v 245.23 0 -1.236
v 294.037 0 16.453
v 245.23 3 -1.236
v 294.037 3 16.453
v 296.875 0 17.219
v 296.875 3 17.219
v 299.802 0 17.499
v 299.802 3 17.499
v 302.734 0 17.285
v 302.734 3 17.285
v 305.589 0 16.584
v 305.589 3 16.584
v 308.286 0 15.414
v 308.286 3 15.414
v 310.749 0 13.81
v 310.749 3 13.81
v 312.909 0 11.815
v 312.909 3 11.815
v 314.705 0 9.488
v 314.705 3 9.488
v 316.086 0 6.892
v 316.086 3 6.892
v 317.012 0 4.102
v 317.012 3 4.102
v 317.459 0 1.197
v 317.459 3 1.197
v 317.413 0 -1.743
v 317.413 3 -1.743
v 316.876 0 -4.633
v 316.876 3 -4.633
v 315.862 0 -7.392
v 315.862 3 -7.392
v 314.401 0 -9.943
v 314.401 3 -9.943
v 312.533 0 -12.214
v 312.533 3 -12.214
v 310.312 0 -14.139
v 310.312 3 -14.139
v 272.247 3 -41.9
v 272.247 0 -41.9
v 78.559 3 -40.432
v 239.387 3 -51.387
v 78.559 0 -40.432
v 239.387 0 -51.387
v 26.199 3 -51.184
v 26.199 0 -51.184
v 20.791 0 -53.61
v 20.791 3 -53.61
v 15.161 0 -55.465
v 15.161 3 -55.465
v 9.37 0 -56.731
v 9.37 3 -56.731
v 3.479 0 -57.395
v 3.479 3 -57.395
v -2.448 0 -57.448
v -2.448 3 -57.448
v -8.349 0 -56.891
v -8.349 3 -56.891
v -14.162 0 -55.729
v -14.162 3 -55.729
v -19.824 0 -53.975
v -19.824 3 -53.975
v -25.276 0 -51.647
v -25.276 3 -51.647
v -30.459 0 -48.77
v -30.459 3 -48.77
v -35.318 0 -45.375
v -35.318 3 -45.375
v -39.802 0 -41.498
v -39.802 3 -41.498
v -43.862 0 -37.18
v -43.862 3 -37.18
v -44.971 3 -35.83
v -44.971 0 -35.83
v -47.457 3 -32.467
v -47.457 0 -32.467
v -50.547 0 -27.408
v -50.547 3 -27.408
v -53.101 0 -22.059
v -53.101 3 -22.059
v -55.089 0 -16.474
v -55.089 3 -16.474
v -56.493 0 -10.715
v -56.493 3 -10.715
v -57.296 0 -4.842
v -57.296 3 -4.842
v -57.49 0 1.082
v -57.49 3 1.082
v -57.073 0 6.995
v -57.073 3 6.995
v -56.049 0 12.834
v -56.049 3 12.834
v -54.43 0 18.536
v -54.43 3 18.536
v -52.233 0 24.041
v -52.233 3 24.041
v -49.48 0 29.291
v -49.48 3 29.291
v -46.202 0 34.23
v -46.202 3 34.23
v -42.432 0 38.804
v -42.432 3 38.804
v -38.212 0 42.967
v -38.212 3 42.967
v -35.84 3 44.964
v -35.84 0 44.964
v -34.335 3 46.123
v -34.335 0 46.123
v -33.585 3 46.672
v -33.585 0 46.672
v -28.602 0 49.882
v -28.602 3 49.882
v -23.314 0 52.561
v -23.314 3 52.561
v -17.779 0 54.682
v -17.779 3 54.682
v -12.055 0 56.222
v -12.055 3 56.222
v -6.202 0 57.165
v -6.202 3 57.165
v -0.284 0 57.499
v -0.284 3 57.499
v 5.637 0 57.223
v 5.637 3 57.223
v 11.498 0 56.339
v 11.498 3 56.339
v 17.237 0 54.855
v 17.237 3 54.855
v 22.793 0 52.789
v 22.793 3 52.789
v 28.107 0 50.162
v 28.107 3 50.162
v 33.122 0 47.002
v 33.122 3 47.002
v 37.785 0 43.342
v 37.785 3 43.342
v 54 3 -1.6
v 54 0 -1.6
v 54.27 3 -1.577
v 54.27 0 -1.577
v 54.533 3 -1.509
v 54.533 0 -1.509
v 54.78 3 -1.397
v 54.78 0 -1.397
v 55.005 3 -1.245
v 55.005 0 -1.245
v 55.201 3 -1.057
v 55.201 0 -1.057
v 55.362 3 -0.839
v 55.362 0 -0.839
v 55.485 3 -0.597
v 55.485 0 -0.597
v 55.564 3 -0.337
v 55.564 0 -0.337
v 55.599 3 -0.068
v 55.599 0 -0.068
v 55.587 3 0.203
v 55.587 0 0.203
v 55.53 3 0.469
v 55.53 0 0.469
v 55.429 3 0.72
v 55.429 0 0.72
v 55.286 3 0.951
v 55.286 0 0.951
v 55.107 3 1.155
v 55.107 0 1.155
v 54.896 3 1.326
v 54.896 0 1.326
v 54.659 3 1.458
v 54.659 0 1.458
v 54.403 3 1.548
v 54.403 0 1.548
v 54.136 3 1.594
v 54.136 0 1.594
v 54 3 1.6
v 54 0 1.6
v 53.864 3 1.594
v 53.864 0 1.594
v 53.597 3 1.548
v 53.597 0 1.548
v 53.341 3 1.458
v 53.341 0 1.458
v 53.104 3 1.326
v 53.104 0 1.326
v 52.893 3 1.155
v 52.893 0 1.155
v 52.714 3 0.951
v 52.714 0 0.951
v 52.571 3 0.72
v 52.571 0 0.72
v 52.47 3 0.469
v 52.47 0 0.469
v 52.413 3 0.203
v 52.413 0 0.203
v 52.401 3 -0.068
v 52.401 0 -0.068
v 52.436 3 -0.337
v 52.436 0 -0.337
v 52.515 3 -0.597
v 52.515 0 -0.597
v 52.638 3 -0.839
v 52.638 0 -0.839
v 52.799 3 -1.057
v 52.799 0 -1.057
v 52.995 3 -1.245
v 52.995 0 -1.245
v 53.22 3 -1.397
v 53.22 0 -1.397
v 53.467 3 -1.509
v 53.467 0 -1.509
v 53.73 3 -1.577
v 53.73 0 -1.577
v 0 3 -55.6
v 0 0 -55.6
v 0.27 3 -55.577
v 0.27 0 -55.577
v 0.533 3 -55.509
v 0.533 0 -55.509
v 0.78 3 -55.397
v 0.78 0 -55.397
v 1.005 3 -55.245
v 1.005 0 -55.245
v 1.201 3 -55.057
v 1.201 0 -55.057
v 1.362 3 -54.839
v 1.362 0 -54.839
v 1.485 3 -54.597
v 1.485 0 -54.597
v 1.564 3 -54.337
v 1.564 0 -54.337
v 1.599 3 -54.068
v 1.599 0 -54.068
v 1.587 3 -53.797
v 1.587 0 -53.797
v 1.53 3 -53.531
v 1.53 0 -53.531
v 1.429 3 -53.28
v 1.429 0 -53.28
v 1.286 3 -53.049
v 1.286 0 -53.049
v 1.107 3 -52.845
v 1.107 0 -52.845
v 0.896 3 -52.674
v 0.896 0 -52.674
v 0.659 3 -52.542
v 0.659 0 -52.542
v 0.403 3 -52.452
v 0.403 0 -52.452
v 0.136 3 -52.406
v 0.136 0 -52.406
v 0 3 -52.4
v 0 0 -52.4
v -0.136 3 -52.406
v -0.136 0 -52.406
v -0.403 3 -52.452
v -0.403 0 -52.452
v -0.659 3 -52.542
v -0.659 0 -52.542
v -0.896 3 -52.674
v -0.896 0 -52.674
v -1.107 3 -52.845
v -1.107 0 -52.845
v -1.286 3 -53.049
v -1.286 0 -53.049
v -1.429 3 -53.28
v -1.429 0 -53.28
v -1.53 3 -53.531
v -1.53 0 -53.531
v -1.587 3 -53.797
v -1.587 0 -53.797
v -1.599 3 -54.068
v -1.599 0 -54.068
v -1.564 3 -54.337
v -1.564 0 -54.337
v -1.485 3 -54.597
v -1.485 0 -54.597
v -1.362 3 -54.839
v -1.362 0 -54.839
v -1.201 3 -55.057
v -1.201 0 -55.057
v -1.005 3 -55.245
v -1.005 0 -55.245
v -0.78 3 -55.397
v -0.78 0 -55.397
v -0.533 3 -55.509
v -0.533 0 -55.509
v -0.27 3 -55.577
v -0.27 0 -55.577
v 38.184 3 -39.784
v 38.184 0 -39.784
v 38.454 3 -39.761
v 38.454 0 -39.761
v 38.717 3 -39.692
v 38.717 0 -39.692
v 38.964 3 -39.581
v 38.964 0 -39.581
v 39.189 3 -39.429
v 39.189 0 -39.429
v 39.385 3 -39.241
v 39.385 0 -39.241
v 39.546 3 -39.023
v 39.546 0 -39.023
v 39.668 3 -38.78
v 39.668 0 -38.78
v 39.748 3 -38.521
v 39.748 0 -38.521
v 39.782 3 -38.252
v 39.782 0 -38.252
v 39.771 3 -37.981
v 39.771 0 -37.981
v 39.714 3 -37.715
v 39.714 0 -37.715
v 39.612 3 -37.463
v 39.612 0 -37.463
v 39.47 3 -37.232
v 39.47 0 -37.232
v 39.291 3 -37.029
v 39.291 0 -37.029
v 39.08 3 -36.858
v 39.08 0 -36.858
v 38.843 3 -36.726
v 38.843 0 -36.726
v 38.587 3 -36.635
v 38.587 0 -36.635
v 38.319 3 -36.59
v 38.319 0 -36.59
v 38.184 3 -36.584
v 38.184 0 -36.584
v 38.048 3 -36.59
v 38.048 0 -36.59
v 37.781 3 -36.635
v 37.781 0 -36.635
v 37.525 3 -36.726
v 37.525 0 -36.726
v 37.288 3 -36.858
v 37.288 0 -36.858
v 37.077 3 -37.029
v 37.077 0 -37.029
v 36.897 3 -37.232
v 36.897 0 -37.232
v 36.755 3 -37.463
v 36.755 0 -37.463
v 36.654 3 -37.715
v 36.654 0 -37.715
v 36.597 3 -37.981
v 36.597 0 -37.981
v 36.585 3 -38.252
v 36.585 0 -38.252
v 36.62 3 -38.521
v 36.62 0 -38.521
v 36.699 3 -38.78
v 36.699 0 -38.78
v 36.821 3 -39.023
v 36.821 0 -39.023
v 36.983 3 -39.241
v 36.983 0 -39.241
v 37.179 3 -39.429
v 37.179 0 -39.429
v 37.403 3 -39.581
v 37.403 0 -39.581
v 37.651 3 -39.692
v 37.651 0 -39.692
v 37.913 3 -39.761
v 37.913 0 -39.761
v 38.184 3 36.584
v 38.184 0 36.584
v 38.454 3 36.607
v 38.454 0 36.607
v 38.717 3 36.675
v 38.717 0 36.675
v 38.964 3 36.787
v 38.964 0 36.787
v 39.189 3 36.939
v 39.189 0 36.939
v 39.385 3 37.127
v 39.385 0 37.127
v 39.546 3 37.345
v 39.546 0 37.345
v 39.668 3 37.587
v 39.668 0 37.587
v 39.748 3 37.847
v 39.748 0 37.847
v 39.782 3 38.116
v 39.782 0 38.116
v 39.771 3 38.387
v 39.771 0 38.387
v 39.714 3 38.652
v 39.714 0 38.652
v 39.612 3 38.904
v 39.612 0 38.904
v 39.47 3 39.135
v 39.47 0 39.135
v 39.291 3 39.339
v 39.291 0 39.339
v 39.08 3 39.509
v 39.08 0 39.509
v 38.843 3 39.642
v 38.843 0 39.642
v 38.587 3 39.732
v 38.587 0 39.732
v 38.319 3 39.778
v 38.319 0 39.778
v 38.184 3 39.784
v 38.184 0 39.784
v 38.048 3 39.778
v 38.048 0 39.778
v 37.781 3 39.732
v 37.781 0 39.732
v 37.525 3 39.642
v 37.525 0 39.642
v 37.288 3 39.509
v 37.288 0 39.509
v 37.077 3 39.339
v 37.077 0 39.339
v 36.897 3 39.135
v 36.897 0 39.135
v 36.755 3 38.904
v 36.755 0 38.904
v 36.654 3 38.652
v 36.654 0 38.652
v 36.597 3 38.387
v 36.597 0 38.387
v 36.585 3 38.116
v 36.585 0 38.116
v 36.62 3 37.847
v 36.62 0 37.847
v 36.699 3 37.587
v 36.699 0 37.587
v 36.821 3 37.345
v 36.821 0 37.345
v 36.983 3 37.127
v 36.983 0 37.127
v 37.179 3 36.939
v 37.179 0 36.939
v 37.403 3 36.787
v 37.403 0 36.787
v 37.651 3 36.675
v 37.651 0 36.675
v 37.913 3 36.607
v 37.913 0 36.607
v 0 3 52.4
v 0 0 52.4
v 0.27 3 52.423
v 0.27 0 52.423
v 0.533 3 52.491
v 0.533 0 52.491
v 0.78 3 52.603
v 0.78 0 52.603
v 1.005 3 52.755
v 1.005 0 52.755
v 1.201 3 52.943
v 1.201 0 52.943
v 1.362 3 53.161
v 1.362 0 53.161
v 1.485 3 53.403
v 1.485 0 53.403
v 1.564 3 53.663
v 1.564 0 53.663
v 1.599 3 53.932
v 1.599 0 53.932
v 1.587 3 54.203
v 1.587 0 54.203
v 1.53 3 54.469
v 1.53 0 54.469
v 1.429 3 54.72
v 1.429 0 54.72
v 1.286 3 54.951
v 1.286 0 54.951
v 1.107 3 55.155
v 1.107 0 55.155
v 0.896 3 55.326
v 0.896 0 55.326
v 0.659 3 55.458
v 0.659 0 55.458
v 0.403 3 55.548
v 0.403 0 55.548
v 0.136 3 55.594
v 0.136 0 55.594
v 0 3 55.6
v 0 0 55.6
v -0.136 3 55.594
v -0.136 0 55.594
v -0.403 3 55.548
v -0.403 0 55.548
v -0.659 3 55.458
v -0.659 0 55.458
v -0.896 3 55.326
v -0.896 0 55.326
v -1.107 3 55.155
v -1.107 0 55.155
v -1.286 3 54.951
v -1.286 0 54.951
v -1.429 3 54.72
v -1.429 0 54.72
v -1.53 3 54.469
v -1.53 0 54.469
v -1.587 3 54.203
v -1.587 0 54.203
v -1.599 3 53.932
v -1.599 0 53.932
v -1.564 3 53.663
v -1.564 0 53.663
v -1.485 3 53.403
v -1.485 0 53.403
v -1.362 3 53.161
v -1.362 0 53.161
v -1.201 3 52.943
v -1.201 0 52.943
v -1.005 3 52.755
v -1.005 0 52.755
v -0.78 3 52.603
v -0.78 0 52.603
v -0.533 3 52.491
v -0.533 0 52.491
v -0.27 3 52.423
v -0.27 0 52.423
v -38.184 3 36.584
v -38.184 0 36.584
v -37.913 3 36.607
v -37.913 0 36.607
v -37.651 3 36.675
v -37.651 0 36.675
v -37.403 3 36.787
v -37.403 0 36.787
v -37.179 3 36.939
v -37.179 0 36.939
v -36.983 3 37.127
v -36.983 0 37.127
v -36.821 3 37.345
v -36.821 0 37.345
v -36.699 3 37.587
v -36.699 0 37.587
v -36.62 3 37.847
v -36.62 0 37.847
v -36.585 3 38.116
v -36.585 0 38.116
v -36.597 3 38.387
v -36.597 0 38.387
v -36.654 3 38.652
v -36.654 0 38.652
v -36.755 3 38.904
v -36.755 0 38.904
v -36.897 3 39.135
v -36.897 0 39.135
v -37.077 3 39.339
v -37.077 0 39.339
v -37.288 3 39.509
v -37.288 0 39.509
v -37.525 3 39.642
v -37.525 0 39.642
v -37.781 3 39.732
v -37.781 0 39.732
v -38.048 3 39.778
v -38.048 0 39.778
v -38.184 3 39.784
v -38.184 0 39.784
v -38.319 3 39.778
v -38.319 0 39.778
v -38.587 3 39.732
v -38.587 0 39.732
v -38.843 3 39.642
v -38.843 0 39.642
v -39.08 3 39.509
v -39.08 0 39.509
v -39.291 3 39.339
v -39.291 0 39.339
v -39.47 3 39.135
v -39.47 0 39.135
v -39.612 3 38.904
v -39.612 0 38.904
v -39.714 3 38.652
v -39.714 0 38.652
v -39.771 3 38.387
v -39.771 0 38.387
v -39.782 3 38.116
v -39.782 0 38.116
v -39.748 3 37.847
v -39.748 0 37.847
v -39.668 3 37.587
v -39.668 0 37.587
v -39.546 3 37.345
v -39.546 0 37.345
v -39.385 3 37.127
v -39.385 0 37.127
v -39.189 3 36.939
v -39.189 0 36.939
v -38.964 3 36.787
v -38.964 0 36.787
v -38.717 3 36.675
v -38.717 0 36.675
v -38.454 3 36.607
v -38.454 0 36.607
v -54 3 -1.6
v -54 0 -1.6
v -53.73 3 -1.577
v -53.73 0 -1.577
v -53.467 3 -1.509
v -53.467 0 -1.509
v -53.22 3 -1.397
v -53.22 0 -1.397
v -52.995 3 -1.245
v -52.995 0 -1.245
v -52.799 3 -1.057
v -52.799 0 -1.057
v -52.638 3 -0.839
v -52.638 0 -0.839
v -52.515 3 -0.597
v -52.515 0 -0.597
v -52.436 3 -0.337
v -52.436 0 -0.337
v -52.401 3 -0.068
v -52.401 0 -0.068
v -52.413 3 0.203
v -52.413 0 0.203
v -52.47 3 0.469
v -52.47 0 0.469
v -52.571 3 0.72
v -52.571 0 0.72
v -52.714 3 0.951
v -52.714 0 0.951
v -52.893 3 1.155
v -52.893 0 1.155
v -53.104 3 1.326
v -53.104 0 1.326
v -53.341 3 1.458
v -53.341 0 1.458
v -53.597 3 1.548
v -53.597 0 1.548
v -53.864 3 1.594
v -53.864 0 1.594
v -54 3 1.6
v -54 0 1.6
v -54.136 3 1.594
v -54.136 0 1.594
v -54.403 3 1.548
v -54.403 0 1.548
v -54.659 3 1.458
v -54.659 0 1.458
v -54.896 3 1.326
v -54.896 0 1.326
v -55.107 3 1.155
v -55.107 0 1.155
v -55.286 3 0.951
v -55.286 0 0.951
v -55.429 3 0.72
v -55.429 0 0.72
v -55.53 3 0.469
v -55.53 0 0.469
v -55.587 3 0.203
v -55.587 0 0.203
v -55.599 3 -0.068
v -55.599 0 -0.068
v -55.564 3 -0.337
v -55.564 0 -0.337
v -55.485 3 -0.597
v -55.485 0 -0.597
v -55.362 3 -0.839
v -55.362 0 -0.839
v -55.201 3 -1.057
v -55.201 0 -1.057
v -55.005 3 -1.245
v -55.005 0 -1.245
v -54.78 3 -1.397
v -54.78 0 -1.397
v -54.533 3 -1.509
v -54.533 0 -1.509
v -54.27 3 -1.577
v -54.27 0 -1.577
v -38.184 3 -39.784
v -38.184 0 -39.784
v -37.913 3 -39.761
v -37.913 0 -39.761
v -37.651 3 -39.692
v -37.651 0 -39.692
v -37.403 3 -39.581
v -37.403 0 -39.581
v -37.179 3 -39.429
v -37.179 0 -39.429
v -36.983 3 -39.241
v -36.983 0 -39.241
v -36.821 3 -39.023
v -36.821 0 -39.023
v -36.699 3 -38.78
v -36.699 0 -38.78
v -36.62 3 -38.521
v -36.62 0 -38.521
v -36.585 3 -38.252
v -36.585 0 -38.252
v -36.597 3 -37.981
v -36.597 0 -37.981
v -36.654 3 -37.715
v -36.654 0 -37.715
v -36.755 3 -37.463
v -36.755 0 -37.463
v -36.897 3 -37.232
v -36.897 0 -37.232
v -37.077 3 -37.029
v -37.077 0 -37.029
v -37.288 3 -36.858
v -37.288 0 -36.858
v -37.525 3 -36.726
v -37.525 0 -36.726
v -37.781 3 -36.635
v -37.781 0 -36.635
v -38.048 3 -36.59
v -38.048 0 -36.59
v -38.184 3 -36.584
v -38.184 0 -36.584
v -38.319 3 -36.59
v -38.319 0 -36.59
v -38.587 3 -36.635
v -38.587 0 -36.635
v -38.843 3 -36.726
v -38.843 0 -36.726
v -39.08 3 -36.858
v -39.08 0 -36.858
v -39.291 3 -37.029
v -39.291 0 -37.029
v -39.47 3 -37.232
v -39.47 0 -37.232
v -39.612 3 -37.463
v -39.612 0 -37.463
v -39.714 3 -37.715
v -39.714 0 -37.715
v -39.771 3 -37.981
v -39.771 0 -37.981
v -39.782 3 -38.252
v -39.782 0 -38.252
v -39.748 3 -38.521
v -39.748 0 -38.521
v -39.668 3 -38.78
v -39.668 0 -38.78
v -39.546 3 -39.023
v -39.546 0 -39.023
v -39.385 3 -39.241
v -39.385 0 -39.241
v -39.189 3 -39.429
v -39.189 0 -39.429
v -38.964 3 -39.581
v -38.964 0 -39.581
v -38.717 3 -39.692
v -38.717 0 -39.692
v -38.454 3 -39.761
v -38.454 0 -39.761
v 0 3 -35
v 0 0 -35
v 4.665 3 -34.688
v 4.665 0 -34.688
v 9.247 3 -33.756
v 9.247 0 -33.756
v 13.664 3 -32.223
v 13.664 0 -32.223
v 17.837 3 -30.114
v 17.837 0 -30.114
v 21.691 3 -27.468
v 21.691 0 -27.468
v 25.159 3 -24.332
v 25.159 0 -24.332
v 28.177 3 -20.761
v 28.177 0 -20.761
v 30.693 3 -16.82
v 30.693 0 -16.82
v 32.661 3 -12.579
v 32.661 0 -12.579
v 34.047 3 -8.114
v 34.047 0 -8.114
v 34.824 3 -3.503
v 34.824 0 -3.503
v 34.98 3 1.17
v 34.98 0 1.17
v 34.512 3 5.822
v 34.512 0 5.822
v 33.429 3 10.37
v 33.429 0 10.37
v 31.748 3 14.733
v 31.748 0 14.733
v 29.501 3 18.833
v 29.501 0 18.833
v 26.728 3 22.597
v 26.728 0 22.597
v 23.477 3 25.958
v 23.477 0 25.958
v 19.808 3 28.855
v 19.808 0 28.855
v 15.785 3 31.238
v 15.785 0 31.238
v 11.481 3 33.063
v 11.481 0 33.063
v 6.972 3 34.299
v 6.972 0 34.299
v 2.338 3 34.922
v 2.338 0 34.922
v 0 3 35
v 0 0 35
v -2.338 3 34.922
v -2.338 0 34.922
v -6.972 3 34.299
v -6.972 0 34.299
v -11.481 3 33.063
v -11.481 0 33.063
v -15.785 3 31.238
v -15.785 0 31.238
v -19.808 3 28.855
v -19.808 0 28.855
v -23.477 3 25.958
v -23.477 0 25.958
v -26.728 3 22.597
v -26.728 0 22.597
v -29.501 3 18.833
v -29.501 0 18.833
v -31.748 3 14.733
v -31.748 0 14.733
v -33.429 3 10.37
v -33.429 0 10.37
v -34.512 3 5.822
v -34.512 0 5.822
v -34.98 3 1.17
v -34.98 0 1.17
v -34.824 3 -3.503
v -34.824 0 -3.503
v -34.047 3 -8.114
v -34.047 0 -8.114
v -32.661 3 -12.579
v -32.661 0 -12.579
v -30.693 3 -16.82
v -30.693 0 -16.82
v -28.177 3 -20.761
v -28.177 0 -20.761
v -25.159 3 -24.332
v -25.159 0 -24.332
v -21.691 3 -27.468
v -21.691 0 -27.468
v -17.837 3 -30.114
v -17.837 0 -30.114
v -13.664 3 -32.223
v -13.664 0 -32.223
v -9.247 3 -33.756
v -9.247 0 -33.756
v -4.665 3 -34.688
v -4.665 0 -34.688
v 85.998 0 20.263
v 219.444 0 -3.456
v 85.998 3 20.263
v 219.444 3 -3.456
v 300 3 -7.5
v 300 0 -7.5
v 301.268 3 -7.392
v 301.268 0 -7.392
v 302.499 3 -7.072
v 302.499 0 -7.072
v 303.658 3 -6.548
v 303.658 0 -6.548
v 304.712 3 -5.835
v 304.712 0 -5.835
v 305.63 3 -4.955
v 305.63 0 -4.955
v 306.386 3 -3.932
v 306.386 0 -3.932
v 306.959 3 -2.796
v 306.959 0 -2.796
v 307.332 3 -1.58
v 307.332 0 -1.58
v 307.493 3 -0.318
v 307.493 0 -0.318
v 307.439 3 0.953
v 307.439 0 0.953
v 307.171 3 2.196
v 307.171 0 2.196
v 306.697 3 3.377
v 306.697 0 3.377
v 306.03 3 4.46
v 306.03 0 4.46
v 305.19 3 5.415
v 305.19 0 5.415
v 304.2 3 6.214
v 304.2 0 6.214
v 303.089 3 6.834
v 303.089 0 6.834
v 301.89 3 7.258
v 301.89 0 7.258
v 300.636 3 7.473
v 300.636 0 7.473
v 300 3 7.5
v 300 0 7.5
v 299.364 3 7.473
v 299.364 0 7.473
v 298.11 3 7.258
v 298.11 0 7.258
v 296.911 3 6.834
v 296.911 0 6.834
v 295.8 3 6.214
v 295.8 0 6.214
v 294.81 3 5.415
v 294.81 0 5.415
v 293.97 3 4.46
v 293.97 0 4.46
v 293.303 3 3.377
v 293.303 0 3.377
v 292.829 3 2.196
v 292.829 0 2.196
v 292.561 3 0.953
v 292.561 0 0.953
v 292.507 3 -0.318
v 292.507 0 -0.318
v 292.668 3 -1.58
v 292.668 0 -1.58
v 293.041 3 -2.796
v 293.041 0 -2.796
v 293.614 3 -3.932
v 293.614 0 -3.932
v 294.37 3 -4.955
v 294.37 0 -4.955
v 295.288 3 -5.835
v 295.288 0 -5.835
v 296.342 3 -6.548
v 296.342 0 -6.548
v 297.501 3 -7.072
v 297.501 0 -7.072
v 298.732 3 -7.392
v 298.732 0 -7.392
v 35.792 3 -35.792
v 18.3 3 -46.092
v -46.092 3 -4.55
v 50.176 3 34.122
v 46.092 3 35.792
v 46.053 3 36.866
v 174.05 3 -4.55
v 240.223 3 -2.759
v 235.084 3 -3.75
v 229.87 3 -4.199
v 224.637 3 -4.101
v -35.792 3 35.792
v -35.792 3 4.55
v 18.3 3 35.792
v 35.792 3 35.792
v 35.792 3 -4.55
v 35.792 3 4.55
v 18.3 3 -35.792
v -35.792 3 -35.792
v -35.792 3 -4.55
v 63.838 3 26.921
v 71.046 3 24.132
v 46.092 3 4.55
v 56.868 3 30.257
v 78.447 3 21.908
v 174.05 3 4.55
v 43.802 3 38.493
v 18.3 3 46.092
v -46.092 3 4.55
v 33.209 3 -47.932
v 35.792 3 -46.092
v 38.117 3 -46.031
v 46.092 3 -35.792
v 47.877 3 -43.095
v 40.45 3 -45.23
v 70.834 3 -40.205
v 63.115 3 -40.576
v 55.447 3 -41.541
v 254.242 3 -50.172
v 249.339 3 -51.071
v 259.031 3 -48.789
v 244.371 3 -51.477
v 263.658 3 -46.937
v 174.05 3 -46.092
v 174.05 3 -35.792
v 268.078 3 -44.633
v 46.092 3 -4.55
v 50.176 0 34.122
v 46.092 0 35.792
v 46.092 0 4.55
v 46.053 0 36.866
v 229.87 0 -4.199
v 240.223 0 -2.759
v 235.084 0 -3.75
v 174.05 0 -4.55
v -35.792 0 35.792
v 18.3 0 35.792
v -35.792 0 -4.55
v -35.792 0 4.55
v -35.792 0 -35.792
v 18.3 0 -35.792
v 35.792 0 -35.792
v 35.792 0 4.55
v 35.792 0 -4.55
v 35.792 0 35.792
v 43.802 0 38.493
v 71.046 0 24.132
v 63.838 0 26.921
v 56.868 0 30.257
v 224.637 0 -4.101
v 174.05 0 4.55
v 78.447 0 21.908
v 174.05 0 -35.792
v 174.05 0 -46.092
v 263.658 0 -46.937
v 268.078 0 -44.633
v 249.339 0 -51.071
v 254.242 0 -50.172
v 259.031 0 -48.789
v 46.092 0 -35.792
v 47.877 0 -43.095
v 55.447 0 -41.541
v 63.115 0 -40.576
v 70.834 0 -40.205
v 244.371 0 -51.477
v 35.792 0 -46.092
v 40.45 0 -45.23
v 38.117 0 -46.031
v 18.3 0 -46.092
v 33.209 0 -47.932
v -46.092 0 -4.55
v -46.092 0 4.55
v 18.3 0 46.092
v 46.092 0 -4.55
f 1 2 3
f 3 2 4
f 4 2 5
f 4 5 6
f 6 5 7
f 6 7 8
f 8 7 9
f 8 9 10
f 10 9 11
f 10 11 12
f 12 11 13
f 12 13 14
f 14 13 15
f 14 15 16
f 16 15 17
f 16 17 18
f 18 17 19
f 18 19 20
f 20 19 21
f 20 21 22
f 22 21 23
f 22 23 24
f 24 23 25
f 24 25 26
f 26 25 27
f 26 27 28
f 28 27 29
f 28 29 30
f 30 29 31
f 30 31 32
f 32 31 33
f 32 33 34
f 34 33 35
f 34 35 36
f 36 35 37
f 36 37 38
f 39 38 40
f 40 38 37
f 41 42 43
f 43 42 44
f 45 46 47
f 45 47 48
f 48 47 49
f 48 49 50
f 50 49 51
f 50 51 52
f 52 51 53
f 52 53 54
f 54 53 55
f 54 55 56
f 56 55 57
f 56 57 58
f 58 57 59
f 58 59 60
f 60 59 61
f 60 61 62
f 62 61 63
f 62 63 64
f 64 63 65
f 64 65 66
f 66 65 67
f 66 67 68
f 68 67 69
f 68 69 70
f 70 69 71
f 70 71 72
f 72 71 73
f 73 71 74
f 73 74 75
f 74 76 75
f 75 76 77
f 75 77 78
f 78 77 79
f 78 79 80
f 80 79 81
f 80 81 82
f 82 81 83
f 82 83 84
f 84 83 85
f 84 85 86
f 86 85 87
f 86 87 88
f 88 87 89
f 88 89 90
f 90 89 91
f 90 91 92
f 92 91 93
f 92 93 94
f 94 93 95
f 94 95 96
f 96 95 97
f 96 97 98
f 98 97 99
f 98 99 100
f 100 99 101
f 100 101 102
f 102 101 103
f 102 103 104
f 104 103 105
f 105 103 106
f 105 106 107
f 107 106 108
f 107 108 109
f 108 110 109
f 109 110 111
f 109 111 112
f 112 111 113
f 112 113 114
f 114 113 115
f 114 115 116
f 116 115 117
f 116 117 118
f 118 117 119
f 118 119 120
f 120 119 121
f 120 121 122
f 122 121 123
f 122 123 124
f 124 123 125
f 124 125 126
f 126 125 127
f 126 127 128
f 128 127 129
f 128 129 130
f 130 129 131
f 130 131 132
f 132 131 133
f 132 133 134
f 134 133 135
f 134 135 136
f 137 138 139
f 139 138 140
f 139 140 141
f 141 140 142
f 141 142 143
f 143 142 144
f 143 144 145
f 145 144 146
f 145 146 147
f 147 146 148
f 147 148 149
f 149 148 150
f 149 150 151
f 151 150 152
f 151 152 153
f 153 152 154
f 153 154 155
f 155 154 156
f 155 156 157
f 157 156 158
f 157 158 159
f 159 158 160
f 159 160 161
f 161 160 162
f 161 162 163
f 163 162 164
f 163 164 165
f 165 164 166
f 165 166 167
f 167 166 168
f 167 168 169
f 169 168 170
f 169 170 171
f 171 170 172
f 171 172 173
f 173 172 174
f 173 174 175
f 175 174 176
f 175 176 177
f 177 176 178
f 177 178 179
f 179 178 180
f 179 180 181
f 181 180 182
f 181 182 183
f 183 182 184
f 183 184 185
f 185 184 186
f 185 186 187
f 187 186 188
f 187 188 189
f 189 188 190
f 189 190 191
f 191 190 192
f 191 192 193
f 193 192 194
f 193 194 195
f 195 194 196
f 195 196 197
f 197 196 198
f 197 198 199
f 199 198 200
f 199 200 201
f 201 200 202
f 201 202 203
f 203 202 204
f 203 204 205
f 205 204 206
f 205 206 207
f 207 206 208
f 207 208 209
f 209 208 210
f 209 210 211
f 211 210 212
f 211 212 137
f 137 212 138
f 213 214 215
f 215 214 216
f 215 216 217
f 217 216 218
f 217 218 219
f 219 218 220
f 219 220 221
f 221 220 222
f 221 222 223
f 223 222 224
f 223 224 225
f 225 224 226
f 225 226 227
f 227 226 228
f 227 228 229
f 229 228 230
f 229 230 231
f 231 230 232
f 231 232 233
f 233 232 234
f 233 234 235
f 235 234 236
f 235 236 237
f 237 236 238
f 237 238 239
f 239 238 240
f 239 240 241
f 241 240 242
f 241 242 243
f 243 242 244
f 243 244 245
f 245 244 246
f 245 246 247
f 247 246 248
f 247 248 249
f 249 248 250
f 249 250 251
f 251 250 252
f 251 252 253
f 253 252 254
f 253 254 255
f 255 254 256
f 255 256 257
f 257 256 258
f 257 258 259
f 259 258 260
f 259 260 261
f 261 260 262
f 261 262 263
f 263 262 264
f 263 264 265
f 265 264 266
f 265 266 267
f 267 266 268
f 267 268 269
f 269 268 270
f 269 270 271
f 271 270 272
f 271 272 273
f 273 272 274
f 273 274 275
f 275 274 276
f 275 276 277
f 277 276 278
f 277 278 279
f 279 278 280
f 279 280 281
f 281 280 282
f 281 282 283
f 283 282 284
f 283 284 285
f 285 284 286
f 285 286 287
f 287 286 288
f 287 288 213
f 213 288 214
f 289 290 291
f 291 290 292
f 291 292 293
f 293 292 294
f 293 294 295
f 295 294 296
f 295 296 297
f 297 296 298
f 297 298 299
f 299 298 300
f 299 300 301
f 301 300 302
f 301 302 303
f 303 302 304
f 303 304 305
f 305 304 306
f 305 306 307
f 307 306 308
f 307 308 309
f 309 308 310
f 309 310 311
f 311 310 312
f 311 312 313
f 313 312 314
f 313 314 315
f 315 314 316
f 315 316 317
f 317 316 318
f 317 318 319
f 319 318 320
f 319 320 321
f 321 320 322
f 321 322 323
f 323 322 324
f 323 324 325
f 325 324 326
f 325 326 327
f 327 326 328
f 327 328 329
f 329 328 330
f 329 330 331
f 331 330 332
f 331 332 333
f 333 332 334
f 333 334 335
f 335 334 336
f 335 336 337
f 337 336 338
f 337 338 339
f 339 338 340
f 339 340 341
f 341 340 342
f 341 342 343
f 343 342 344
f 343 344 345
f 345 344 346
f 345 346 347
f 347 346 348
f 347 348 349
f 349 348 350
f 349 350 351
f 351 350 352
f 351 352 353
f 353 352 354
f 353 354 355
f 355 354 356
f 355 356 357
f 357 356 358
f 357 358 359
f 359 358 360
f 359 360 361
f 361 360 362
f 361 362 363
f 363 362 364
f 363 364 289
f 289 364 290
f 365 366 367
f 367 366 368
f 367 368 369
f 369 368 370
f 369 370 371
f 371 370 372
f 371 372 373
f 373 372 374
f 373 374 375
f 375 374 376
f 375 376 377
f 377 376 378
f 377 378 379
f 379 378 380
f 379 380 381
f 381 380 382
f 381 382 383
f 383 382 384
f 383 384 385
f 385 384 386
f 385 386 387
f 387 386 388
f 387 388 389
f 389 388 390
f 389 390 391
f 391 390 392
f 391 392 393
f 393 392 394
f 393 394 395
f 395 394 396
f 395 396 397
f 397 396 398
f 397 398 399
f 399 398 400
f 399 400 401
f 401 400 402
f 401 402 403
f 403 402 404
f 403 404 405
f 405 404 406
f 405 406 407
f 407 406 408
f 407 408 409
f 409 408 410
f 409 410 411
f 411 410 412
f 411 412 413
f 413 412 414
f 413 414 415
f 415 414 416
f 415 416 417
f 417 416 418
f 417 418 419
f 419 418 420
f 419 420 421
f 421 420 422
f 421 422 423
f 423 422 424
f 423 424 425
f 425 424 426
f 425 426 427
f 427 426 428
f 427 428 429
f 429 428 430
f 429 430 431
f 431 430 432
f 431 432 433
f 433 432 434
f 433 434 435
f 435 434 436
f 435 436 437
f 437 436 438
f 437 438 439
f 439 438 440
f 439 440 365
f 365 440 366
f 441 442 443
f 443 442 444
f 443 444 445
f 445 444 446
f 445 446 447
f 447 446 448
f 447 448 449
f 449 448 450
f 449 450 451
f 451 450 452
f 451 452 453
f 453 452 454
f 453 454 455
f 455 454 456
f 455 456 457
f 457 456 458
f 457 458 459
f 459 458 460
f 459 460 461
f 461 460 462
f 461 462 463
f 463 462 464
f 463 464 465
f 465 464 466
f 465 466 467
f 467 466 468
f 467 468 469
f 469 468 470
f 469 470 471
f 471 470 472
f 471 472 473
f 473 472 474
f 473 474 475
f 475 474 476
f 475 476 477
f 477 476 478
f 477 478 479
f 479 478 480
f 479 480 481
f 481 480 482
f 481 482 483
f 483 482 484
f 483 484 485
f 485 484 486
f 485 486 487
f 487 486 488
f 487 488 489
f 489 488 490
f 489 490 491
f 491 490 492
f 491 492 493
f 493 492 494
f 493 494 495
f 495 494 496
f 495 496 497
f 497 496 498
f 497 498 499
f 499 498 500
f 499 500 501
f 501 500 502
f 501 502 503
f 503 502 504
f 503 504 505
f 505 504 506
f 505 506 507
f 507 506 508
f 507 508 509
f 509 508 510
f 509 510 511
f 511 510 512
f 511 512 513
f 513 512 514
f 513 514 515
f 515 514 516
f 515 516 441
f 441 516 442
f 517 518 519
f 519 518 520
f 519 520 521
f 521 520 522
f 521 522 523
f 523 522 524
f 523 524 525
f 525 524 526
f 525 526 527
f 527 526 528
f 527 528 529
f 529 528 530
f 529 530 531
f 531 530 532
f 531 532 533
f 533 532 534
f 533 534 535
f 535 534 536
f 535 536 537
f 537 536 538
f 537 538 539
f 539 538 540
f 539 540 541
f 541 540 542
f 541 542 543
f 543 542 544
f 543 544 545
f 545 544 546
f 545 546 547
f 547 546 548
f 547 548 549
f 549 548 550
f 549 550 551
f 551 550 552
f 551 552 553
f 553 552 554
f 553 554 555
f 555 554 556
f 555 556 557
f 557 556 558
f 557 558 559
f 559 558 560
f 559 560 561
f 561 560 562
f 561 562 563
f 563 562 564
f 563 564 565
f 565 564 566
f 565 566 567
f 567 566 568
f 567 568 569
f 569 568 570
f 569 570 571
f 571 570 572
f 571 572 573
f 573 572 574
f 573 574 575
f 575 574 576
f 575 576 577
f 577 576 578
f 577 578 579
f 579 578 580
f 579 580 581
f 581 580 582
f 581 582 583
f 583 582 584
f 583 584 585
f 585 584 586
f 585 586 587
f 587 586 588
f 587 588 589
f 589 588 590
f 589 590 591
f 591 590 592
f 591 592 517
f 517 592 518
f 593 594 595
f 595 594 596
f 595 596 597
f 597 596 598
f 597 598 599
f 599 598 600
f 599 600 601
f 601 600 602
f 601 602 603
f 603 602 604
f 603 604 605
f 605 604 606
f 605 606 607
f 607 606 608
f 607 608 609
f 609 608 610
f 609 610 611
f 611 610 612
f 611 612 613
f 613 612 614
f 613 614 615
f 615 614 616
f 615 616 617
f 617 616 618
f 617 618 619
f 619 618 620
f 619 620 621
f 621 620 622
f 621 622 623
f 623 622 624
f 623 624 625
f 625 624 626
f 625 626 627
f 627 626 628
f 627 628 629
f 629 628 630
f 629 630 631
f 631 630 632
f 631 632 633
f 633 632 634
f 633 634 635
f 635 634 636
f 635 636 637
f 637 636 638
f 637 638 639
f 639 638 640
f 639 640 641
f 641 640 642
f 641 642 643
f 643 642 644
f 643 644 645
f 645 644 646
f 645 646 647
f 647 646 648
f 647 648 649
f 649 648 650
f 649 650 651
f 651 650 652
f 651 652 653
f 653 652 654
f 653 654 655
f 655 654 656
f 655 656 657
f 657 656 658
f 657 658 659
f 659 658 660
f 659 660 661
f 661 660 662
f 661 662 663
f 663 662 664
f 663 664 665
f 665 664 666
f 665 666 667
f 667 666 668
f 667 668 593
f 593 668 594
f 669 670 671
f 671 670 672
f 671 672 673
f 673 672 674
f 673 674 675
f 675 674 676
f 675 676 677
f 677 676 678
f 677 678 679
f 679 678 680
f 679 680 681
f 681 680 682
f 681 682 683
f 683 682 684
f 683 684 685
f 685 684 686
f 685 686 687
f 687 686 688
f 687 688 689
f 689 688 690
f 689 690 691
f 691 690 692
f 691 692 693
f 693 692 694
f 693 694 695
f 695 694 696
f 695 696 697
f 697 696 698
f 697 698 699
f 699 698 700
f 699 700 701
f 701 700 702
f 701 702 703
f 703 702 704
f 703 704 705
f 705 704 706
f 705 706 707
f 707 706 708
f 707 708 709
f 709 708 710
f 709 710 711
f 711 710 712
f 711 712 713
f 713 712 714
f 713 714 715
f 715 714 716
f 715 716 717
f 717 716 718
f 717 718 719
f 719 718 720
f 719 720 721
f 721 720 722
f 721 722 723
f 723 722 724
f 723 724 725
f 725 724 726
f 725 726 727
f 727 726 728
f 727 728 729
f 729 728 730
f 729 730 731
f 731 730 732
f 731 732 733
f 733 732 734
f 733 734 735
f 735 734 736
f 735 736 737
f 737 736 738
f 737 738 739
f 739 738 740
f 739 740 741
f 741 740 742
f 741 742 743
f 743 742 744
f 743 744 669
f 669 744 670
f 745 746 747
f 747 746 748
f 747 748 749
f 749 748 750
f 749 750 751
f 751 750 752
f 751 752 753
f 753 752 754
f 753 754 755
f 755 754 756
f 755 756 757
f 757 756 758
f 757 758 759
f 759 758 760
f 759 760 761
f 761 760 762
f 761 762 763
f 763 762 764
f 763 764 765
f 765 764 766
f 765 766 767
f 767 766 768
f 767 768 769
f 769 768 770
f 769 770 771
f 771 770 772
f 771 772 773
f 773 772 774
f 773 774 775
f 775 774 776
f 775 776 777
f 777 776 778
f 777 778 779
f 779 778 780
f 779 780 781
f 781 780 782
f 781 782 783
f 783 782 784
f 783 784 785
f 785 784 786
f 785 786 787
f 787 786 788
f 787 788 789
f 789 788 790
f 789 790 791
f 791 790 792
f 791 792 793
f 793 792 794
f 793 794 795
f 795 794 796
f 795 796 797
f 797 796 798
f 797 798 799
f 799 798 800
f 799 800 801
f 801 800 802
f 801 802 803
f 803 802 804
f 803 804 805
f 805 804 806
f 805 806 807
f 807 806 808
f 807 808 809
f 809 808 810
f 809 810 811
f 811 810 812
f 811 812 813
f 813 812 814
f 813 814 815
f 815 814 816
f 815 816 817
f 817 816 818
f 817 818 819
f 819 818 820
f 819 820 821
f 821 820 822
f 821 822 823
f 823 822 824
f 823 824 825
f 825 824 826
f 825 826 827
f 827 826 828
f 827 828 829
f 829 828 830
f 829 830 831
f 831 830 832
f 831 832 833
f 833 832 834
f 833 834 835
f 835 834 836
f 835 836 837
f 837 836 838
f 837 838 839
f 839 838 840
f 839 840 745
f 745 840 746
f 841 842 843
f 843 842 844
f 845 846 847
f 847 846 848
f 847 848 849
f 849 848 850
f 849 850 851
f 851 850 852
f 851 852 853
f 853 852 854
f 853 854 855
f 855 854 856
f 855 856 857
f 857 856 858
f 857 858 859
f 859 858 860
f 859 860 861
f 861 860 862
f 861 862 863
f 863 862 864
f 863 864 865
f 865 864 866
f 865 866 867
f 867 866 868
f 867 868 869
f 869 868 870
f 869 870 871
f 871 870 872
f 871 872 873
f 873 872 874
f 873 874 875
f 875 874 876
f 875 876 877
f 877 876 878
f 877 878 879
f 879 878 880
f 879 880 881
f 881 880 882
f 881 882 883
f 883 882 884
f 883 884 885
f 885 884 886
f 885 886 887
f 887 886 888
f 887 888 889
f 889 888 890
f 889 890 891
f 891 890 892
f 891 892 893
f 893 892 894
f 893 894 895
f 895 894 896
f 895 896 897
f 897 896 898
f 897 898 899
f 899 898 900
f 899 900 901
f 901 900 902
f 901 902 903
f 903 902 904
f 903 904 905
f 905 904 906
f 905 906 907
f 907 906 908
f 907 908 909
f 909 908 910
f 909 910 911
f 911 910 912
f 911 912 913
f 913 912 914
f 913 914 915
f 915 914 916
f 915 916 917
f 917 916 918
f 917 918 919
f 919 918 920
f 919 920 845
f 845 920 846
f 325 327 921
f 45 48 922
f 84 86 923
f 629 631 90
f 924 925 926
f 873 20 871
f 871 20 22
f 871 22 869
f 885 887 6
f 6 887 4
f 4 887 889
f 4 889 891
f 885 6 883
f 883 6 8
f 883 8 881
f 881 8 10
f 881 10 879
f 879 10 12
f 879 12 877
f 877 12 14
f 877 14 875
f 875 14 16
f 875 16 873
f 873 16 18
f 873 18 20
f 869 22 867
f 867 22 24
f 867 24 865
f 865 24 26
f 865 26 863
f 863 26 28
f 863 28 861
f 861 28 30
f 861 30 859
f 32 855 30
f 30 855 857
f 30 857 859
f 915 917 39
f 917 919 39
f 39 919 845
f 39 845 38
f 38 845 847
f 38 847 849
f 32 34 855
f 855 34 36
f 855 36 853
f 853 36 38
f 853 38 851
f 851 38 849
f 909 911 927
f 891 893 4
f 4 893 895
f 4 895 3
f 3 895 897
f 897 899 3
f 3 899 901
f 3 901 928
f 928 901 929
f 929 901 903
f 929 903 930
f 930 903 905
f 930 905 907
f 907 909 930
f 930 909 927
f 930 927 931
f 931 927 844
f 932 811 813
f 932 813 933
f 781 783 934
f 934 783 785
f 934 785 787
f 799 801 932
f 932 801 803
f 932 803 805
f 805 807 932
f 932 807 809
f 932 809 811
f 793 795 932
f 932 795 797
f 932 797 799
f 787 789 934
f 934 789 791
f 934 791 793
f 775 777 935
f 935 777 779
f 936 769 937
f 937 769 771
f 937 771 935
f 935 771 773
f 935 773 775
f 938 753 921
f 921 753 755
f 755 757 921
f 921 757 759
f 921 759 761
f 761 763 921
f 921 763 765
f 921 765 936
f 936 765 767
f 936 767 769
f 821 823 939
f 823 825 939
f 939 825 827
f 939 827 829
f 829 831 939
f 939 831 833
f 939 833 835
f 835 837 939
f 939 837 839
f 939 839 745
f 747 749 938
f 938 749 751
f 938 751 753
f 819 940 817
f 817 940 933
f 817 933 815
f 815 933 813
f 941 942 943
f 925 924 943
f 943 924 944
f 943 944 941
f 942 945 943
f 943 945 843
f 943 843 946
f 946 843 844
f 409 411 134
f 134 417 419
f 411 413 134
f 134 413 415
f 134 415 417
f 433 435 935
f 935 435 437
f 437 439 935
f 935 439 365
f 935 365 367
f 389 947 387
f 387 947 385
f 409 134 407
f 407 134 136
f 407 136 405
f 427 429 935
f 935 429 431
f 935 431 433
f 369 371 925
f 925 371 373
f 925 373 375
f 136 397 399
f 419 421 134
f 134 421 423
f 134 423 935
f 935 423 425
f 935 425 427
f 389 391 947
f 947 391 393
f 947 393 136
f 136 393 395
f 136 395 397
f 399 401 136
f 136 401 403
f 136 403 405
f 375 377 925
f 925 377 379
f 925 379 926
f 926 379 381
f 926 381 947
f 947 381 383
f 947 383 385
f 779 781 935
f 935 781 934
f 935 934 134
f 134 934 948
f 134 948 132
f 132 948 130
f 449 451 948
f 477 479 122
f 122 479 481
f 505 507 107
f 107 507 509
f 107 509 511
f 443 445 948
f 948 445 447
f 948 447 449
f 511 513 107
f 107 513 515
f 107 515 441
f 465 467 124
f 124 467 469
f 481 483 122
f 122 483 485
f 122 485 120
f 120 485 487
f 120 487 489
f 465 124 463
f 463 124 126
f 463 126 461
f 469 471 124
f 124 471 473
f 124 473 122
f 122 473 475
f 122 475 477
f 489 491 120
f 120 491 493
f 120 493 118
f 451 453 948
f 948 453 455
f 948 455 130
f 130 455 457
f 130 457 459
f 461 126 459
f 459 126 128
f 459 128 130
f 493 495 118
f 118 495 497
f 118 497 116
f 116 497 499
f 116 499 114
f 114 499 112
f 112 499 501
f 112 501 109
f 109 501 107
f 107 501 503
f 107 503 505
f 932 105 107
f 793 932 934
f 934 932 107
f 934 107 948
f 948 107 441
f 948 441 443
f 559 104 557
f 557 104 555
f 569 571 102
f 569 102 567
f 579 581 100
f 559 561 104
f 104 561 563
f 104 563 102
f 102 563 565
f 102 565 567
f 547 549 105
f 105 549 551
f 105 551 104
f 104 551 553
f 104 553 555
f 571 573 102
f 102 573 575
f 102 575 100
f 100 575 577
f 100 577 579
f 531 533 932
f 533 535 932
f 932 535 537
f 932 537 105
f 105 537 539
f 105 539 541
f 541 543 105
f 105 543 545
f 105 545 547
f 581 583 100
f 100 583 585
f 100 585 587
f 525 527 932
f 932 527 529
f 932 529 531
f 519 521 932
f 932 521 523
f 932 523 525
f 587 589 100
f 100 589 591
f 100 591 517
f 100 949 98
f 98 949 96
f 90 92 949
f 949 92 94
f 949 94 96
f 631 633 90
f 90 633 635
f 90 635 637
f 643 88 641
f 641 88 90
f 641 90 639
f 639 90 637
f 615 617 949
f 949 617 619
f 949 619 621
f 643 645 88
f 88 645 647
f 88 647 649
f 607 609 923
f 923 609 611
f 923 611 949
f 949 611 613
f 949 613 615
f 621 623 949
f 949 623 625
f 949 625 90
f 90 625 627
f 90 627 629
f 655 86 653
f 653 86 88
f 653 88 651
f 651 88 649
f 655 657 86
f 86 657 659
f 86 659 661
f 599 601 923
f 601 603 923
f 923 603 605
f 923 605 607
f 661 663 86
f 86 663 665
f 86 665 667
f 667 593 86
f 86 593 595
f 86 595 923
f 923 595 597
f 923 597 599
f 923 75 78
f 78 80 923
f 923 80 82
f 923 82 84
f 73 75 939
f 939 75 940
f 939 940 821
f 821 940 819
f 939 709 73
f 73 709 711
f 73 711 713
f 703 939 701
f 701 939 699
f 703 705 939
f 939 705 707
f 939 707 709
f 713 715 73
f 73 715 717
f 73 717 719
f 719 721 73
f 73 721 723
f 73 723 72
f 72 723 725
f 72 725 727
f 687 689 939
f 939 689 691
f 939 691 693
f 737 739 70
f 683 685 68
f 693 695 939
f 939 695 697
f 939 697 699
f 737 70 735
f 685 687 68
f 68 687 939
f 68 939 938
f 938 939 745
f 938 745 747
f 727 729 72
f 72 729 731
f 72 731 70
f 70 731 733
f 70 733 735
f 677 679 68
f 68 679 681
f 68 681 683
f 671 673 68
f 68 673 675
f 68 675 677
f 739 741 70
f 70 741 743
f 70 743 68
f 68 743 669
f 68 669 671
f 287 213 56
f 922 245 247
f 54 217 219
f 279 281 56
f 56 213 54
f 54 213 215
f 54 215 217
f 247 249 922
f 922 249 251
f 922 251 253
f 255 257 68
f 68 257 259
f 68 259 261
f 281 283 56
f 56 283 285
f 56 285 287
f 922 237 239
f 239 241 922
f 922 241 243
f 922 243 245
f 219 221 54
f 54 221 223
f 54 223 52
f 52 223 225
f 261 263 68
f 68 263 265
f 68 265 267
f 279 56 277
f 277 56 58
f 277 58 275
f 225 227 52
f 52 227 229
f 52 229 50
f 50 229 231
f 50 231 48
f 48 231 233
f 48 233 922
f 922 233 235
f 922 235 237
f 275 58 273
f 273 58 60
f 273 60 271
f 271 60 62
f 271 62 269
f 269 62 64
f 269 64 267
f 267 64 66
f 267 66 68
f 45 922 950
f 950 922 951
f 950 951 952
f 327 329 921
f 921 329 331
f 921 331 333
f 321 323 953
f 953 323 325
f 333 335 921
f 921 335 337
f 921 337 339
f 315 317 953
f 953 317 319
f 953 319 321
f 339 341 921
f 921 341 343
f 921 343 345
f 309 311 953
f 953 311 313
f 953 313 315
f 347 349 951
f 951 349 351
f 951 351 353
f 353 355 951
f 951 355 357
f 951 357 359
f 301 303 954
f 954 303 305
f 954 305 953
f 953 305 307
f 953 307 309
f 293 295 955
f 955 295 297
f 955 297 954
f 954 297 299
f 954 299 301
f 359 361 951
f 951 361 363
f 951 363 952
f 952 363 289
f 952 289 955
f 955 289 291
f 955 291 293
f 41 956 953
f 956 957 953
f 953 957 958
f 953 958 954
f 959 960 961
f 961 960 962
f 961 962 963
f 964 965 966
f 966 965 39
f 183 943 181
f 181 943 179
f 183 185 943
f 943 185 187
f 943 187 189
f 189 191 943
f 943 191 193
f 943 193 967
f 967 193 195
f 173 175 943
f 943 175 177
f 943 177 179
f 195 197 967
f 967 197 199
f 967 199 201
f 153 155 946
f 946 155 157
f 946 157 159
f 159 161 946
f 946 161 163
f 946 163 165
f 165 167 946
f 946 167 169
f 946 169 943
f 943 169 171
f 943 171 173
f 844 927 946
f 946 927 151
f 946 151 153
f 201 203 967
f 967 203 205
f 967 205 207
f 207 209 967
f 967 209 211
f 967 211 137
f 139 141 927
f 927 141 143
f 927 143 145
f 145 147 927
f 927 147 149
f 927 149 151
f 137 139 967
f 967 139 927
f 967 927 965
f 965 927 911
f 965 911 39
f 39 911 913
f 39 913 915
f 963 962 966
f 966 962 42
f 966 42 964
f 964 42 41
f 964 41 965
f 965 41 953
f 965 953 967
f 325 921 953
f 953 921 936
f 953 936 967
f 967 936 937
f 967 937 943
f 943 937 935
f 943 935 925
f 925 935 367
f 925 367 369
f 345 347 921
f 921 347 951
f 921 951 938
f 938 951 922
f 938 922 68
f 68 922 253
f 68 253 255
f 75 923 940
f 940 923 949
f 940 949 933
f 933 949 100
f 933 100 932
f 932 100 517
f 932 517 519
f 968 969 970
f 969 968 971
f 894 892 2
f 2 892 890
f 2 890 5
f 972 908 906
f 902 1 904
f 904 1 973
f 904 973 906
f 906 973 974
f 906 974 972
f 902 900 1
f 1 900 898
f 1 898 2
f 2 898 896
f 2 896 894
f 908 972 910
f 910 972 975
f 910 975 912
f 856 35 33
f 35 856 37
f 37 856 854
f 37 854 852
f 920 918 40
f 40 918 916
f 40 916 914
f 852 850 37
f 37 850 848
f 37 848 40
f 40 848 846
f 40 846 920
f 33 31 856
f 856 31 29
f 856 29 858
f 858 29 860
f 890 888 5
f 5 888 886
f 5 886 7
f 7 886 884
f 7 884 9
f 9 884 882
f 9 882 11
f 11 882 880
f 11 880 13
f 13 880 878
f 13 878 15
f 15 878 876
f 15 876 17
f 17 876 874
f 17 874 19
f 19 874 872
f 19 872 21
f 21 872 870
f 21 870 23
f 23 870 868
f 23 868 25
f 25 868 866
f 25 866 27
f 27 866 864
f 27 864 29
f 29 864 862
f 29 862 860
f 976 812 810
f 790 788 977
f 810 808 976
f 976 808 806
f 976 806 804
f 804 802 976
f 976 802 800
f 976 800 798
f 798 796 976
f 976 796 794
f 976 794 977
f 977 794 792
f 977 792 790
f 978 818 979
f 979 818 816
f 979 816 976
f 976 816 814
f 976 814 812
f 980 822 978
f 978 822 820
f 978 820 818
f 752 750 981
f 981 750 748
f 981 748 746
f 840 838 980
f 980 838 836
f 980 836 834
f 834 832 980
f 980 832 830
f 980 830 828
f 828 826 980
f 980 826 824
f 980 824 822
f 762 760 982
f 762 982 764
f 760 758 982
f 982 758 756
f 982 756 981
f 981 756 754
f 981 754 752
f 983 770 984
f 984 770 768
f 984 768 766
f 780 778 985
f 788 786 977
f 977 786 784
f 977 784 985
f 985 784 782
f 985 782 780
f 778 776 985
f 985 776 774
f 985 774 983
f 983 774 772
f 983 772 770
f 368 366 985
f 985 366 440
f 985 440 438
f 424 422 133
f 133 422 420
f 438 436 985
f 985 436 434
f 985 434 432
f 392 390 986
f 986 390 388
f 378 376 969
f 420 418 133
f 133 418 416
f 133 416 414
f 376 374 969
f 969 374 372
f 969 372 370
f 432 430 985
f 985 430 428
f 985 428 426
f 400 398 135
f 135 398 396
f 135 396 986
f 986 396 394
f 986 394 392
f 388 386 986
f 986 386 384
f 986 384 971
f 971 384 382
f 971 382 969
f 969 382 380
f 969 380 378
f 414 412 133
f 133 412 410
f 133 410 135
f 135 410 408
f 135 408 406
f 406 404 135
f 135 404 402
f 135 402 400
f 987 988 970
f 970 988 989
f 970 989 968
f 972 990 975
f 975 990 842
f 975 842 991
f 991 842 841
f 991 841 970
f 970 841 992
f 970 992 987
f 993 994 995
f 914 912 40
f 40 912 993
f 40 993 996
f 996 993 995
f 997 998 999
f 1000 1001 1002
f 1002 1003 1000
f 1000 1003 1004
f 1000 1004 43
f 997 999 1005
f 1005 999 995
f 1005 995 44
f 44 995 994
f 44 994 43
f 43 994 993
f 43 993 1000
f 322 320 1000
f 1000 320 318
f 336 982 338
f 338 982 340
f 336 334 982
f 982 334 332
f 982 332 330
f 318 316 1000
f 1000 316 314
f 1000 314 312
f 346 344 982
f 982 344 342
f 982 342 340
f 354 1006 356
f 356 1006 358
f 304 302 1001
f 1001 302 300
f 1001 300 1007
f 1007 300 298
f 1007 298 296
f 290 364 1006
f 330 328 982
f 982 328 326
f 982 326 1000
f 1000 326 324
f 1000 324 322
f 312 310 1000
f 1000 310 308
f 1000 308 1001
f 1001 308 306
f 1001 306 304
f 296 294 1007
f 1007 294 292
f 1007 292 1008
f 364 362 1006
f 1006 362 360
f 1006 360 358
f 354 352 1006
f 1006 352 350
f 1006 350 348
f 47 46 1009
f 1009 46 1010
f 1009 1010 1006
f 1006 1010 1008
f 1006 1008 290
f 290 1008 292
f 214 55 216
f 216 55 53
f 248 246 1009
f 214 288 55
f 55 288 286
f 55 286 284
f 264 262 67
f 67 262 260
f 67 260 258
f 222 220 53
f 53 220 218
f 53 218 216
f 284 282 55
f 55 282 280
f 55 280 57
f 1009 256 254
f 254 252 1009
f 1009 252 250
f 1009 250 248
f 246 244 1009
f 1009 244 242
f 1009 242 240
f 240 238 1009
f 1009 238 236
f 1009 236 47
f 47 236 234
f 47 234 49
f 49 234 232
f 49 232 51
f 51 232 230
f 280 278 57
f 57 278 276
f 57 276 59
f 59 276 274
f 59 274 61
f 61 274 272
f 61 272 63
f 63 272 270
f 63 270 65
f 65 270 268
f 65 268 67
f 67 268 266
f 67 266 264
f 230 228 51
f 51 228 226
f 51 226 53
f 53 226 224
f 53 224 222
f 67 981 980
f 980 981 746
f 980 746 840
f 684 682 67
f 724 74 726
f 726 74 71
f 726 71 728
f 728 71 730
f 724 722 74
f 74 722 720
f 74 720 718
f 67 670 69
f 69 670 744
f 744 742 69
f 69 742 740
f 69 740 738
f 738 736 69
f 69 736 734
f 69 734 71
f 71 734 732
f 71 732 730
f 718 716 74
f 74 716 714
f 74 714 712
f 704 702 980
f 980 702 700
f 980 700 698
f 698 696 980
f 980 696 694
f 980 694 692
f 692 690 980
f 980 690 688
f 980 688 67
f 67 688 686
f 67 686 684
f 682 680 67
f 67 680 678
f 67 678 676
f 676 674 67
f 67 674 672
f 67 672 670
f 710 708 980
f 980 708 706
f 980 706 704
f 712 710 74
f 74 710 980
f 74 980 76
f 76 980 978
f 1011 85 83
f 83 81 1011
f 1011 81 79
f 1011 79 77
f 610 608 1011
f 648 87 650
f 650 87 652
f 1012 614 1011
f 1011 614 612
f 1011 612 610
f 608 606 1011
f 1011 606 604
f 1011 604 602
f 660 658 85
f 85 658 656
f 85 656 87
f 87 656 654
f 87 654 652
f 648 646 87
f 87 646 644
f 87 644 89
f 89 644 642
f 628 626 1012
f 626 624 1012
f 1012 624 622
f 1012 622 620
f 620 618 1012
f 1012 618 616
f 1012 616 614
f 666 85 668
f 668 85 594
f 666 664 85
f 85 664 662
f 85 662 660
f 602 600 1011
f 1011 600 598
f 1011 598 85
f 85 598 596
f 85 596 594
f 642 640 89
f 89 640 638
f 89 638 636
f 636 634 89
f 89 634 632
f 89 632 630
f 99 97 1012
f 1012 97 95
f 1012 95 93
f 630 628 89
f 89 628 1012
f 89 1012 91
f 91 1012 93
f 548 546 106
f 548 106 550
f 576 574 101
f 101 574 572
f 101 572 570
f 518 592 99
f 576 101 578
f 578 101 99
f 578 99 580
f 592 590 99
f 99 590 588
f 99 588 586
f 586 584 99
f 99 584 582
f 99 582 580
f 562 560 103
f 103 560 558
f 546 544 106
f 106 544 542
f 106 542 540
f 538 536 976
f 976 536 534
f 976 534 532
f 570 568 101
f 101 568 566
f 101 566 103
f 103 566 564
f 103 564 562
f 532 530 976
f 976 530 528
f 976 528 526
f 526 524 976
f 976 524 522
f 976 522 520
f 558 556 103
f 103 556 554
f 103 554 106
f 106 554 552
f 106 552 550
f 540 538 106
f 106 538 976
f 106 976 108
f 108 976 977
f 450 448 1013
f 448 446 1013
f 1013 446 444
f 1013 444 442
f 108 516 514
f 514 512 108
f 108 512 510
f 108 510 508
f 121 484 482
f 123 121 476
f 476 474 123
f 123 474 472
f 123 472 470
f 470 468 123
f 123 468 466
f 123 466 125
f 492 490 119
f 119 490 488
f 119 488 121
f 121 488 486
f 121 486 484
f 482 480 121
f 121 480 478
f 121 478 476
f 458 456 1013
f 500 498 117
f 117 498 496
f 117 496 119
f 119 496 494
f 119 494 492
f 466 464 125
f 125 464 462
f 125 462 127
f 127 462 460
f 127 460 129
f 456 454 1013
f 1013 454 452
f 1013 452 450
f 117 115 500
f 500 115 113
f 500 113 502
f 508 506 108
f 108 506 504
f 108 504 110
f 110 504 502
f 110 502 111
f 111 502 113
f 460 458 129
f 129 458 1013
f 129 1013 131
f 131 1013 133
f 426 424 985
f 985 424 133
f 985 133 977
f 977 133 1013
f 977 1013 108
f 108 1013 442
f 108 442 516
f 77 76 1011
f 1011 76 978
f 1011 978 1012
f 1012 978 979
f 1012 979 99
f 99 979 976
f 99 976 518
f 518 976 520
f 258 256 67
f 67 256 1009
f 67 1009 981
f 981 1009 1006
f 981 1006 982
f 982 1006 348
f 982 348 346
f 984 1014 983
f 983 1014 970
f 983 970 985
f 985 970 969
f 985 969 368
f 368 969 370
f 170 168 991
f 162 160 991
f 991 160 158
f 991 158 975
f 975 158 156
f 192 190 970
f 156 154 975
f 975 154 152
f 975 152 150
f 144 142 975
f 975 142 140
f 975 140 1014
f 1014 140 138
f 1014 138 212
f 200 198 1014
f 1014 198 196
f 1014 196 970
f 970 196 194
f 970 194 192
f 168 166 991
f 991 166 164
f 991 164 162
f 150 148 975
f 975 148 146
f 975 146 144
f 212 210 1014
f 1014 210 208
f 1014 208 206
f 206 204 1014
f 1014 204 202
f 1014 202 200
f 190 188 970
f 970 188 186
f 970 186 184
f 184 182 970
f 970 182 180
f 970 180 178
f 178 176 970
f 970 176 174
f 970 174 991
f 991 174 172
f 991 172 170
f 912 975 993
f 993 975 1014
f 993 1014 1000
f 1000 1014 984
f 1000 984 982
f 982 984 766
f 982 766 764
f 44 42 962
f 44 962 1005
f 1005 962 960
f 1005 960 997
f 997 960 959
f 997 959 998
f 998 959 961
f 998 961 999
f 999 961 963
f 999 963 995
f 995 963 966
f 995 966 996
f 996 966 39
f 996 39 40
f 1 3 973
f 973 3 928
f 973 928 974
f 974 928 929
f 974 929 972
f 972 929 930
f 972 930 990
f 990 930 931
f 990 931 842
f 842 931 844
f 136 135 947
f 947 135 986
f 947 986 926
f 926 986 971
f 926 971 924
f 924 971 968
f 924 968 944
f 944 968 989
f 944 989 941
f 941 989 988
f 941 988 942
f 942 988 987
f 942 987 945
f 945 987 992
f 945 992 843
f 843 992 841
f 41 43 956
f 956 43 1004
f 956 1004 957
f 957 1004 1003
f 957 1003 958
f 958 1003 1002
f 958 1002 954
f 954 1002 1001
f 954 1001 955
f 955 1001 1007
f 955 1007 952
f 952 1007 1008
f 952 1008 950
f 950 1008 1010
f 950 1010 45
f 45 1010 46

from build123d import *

# Parameters (mm, degrees)
SKETCH1_R           = 1.6
SKETCH1_R_2         = 35
SKETCH1_R_3         = 7.5
BOSS_EXTRUDE2_DEPTH = 3
FILLET1_R           = 50
FILLET2_R           = 100


with BuildPart() as part:
    # Sketch1 → Boss-Extrude2 (new body)
    with BuildSketch(Plane(origin=(0, 0, 0), x_dir=(1, 0, 0), z_dir=(0, 1, 0))):
        with BuildLine():
            Line((257.543524338, 52.623283), (43.136797408, 38.01929391))
            ThreePointArc((43.136797408, 38.01929391), (-57.072915612, -6.99516287), (51.041719813, -26.476269347))
            Line((51.041719813, -26.476269347), (232.634460204, 5.800541986))
            Line((232.634460204, 5.800541986), (294.037229007, -16.452822314))
            ThreePointArc((294.037229007, -16.452822314), (315.449808374, -8.21908883), (310.311776158, 14.139210461))
            Line((310.311776158, 14.139210461), (257.543524338, 52.623283))
        make_face()
        with Locations(Location((38.183766184, 38.183766184, 0), (0, 0, 270))):
            Circle(SKETCH1_R, mode=Mode.SUBTRACT)
        with Locations(Location((0, 0, 0), (0, 0, 270))):
            Circle(SKETCH1_R_2, mode=Mode.SUBTRACT)
        with Locations(Location((54, 0, 0), (0, 0, 270))):
            Circle(SKETCH1_R, mode=Mode.SUBTRACT)
        with Locations(Location((0, 54, 0), (0, 0, 270))):
            Circle(SKETCH1_R, mode=Mode.SUBTRACT)
        with Locations(Location((-38.183766184, 38.183766184, 0), (0, 0, 270))):
            Circle(SKETCH1_R, mode=Mode.SUBTRACT)
        with Locations(Location((-54, 0, 0), (0, 0, 270))):
            Circle(SKETCH1_R, mode=Mode.SUBTRACT)
        with Locations(Location((0, -54, 0), (0, 0, 270))):
            Circle(SKETCH1_R, mode=Mode.SUBTRACT)
        with Locations(Location((-38.183766184, -38.183766184, 0), (0, 0, 270))):
            Circle(SKETCH1_R, mode=Mode.SUBTRACT)
        with Locations(Location((38.183766184, -38.183766184, 0), (0, 0, 270))):
            Circle(SKETCH1_R, mode=Mode.SUBTRACT)
        with Locations(Location((300, 0, 0), (0, 0, 270))):
            Circle(SKETCH1_R_3, mode=Mode.SUBTRACT)
    extrude(amount=BOSS_EXTRUDE2_DEPTH)

    # Fillet1
    fillet1_edges = [part.edges().sort_by_distance(p)[0] for p in [
        (232.634460204, 1.5, -5.800541986),
        (257.543524338, 1.5, -52.623283),
    ]]
    fillet(fillet1_edges, radius=FILLET1_R)

    # Fillet2
    fillet2_edges = [part.edges().sort_by_distance(p)[0] for p in [
        (51.041719813, 1.5, 26.476269347),
        (43.136797408, 1.5, -38.01929391),
    ]]
    fillet(fillet2_edges, radius=FILLET2_R)


solid = part.part
